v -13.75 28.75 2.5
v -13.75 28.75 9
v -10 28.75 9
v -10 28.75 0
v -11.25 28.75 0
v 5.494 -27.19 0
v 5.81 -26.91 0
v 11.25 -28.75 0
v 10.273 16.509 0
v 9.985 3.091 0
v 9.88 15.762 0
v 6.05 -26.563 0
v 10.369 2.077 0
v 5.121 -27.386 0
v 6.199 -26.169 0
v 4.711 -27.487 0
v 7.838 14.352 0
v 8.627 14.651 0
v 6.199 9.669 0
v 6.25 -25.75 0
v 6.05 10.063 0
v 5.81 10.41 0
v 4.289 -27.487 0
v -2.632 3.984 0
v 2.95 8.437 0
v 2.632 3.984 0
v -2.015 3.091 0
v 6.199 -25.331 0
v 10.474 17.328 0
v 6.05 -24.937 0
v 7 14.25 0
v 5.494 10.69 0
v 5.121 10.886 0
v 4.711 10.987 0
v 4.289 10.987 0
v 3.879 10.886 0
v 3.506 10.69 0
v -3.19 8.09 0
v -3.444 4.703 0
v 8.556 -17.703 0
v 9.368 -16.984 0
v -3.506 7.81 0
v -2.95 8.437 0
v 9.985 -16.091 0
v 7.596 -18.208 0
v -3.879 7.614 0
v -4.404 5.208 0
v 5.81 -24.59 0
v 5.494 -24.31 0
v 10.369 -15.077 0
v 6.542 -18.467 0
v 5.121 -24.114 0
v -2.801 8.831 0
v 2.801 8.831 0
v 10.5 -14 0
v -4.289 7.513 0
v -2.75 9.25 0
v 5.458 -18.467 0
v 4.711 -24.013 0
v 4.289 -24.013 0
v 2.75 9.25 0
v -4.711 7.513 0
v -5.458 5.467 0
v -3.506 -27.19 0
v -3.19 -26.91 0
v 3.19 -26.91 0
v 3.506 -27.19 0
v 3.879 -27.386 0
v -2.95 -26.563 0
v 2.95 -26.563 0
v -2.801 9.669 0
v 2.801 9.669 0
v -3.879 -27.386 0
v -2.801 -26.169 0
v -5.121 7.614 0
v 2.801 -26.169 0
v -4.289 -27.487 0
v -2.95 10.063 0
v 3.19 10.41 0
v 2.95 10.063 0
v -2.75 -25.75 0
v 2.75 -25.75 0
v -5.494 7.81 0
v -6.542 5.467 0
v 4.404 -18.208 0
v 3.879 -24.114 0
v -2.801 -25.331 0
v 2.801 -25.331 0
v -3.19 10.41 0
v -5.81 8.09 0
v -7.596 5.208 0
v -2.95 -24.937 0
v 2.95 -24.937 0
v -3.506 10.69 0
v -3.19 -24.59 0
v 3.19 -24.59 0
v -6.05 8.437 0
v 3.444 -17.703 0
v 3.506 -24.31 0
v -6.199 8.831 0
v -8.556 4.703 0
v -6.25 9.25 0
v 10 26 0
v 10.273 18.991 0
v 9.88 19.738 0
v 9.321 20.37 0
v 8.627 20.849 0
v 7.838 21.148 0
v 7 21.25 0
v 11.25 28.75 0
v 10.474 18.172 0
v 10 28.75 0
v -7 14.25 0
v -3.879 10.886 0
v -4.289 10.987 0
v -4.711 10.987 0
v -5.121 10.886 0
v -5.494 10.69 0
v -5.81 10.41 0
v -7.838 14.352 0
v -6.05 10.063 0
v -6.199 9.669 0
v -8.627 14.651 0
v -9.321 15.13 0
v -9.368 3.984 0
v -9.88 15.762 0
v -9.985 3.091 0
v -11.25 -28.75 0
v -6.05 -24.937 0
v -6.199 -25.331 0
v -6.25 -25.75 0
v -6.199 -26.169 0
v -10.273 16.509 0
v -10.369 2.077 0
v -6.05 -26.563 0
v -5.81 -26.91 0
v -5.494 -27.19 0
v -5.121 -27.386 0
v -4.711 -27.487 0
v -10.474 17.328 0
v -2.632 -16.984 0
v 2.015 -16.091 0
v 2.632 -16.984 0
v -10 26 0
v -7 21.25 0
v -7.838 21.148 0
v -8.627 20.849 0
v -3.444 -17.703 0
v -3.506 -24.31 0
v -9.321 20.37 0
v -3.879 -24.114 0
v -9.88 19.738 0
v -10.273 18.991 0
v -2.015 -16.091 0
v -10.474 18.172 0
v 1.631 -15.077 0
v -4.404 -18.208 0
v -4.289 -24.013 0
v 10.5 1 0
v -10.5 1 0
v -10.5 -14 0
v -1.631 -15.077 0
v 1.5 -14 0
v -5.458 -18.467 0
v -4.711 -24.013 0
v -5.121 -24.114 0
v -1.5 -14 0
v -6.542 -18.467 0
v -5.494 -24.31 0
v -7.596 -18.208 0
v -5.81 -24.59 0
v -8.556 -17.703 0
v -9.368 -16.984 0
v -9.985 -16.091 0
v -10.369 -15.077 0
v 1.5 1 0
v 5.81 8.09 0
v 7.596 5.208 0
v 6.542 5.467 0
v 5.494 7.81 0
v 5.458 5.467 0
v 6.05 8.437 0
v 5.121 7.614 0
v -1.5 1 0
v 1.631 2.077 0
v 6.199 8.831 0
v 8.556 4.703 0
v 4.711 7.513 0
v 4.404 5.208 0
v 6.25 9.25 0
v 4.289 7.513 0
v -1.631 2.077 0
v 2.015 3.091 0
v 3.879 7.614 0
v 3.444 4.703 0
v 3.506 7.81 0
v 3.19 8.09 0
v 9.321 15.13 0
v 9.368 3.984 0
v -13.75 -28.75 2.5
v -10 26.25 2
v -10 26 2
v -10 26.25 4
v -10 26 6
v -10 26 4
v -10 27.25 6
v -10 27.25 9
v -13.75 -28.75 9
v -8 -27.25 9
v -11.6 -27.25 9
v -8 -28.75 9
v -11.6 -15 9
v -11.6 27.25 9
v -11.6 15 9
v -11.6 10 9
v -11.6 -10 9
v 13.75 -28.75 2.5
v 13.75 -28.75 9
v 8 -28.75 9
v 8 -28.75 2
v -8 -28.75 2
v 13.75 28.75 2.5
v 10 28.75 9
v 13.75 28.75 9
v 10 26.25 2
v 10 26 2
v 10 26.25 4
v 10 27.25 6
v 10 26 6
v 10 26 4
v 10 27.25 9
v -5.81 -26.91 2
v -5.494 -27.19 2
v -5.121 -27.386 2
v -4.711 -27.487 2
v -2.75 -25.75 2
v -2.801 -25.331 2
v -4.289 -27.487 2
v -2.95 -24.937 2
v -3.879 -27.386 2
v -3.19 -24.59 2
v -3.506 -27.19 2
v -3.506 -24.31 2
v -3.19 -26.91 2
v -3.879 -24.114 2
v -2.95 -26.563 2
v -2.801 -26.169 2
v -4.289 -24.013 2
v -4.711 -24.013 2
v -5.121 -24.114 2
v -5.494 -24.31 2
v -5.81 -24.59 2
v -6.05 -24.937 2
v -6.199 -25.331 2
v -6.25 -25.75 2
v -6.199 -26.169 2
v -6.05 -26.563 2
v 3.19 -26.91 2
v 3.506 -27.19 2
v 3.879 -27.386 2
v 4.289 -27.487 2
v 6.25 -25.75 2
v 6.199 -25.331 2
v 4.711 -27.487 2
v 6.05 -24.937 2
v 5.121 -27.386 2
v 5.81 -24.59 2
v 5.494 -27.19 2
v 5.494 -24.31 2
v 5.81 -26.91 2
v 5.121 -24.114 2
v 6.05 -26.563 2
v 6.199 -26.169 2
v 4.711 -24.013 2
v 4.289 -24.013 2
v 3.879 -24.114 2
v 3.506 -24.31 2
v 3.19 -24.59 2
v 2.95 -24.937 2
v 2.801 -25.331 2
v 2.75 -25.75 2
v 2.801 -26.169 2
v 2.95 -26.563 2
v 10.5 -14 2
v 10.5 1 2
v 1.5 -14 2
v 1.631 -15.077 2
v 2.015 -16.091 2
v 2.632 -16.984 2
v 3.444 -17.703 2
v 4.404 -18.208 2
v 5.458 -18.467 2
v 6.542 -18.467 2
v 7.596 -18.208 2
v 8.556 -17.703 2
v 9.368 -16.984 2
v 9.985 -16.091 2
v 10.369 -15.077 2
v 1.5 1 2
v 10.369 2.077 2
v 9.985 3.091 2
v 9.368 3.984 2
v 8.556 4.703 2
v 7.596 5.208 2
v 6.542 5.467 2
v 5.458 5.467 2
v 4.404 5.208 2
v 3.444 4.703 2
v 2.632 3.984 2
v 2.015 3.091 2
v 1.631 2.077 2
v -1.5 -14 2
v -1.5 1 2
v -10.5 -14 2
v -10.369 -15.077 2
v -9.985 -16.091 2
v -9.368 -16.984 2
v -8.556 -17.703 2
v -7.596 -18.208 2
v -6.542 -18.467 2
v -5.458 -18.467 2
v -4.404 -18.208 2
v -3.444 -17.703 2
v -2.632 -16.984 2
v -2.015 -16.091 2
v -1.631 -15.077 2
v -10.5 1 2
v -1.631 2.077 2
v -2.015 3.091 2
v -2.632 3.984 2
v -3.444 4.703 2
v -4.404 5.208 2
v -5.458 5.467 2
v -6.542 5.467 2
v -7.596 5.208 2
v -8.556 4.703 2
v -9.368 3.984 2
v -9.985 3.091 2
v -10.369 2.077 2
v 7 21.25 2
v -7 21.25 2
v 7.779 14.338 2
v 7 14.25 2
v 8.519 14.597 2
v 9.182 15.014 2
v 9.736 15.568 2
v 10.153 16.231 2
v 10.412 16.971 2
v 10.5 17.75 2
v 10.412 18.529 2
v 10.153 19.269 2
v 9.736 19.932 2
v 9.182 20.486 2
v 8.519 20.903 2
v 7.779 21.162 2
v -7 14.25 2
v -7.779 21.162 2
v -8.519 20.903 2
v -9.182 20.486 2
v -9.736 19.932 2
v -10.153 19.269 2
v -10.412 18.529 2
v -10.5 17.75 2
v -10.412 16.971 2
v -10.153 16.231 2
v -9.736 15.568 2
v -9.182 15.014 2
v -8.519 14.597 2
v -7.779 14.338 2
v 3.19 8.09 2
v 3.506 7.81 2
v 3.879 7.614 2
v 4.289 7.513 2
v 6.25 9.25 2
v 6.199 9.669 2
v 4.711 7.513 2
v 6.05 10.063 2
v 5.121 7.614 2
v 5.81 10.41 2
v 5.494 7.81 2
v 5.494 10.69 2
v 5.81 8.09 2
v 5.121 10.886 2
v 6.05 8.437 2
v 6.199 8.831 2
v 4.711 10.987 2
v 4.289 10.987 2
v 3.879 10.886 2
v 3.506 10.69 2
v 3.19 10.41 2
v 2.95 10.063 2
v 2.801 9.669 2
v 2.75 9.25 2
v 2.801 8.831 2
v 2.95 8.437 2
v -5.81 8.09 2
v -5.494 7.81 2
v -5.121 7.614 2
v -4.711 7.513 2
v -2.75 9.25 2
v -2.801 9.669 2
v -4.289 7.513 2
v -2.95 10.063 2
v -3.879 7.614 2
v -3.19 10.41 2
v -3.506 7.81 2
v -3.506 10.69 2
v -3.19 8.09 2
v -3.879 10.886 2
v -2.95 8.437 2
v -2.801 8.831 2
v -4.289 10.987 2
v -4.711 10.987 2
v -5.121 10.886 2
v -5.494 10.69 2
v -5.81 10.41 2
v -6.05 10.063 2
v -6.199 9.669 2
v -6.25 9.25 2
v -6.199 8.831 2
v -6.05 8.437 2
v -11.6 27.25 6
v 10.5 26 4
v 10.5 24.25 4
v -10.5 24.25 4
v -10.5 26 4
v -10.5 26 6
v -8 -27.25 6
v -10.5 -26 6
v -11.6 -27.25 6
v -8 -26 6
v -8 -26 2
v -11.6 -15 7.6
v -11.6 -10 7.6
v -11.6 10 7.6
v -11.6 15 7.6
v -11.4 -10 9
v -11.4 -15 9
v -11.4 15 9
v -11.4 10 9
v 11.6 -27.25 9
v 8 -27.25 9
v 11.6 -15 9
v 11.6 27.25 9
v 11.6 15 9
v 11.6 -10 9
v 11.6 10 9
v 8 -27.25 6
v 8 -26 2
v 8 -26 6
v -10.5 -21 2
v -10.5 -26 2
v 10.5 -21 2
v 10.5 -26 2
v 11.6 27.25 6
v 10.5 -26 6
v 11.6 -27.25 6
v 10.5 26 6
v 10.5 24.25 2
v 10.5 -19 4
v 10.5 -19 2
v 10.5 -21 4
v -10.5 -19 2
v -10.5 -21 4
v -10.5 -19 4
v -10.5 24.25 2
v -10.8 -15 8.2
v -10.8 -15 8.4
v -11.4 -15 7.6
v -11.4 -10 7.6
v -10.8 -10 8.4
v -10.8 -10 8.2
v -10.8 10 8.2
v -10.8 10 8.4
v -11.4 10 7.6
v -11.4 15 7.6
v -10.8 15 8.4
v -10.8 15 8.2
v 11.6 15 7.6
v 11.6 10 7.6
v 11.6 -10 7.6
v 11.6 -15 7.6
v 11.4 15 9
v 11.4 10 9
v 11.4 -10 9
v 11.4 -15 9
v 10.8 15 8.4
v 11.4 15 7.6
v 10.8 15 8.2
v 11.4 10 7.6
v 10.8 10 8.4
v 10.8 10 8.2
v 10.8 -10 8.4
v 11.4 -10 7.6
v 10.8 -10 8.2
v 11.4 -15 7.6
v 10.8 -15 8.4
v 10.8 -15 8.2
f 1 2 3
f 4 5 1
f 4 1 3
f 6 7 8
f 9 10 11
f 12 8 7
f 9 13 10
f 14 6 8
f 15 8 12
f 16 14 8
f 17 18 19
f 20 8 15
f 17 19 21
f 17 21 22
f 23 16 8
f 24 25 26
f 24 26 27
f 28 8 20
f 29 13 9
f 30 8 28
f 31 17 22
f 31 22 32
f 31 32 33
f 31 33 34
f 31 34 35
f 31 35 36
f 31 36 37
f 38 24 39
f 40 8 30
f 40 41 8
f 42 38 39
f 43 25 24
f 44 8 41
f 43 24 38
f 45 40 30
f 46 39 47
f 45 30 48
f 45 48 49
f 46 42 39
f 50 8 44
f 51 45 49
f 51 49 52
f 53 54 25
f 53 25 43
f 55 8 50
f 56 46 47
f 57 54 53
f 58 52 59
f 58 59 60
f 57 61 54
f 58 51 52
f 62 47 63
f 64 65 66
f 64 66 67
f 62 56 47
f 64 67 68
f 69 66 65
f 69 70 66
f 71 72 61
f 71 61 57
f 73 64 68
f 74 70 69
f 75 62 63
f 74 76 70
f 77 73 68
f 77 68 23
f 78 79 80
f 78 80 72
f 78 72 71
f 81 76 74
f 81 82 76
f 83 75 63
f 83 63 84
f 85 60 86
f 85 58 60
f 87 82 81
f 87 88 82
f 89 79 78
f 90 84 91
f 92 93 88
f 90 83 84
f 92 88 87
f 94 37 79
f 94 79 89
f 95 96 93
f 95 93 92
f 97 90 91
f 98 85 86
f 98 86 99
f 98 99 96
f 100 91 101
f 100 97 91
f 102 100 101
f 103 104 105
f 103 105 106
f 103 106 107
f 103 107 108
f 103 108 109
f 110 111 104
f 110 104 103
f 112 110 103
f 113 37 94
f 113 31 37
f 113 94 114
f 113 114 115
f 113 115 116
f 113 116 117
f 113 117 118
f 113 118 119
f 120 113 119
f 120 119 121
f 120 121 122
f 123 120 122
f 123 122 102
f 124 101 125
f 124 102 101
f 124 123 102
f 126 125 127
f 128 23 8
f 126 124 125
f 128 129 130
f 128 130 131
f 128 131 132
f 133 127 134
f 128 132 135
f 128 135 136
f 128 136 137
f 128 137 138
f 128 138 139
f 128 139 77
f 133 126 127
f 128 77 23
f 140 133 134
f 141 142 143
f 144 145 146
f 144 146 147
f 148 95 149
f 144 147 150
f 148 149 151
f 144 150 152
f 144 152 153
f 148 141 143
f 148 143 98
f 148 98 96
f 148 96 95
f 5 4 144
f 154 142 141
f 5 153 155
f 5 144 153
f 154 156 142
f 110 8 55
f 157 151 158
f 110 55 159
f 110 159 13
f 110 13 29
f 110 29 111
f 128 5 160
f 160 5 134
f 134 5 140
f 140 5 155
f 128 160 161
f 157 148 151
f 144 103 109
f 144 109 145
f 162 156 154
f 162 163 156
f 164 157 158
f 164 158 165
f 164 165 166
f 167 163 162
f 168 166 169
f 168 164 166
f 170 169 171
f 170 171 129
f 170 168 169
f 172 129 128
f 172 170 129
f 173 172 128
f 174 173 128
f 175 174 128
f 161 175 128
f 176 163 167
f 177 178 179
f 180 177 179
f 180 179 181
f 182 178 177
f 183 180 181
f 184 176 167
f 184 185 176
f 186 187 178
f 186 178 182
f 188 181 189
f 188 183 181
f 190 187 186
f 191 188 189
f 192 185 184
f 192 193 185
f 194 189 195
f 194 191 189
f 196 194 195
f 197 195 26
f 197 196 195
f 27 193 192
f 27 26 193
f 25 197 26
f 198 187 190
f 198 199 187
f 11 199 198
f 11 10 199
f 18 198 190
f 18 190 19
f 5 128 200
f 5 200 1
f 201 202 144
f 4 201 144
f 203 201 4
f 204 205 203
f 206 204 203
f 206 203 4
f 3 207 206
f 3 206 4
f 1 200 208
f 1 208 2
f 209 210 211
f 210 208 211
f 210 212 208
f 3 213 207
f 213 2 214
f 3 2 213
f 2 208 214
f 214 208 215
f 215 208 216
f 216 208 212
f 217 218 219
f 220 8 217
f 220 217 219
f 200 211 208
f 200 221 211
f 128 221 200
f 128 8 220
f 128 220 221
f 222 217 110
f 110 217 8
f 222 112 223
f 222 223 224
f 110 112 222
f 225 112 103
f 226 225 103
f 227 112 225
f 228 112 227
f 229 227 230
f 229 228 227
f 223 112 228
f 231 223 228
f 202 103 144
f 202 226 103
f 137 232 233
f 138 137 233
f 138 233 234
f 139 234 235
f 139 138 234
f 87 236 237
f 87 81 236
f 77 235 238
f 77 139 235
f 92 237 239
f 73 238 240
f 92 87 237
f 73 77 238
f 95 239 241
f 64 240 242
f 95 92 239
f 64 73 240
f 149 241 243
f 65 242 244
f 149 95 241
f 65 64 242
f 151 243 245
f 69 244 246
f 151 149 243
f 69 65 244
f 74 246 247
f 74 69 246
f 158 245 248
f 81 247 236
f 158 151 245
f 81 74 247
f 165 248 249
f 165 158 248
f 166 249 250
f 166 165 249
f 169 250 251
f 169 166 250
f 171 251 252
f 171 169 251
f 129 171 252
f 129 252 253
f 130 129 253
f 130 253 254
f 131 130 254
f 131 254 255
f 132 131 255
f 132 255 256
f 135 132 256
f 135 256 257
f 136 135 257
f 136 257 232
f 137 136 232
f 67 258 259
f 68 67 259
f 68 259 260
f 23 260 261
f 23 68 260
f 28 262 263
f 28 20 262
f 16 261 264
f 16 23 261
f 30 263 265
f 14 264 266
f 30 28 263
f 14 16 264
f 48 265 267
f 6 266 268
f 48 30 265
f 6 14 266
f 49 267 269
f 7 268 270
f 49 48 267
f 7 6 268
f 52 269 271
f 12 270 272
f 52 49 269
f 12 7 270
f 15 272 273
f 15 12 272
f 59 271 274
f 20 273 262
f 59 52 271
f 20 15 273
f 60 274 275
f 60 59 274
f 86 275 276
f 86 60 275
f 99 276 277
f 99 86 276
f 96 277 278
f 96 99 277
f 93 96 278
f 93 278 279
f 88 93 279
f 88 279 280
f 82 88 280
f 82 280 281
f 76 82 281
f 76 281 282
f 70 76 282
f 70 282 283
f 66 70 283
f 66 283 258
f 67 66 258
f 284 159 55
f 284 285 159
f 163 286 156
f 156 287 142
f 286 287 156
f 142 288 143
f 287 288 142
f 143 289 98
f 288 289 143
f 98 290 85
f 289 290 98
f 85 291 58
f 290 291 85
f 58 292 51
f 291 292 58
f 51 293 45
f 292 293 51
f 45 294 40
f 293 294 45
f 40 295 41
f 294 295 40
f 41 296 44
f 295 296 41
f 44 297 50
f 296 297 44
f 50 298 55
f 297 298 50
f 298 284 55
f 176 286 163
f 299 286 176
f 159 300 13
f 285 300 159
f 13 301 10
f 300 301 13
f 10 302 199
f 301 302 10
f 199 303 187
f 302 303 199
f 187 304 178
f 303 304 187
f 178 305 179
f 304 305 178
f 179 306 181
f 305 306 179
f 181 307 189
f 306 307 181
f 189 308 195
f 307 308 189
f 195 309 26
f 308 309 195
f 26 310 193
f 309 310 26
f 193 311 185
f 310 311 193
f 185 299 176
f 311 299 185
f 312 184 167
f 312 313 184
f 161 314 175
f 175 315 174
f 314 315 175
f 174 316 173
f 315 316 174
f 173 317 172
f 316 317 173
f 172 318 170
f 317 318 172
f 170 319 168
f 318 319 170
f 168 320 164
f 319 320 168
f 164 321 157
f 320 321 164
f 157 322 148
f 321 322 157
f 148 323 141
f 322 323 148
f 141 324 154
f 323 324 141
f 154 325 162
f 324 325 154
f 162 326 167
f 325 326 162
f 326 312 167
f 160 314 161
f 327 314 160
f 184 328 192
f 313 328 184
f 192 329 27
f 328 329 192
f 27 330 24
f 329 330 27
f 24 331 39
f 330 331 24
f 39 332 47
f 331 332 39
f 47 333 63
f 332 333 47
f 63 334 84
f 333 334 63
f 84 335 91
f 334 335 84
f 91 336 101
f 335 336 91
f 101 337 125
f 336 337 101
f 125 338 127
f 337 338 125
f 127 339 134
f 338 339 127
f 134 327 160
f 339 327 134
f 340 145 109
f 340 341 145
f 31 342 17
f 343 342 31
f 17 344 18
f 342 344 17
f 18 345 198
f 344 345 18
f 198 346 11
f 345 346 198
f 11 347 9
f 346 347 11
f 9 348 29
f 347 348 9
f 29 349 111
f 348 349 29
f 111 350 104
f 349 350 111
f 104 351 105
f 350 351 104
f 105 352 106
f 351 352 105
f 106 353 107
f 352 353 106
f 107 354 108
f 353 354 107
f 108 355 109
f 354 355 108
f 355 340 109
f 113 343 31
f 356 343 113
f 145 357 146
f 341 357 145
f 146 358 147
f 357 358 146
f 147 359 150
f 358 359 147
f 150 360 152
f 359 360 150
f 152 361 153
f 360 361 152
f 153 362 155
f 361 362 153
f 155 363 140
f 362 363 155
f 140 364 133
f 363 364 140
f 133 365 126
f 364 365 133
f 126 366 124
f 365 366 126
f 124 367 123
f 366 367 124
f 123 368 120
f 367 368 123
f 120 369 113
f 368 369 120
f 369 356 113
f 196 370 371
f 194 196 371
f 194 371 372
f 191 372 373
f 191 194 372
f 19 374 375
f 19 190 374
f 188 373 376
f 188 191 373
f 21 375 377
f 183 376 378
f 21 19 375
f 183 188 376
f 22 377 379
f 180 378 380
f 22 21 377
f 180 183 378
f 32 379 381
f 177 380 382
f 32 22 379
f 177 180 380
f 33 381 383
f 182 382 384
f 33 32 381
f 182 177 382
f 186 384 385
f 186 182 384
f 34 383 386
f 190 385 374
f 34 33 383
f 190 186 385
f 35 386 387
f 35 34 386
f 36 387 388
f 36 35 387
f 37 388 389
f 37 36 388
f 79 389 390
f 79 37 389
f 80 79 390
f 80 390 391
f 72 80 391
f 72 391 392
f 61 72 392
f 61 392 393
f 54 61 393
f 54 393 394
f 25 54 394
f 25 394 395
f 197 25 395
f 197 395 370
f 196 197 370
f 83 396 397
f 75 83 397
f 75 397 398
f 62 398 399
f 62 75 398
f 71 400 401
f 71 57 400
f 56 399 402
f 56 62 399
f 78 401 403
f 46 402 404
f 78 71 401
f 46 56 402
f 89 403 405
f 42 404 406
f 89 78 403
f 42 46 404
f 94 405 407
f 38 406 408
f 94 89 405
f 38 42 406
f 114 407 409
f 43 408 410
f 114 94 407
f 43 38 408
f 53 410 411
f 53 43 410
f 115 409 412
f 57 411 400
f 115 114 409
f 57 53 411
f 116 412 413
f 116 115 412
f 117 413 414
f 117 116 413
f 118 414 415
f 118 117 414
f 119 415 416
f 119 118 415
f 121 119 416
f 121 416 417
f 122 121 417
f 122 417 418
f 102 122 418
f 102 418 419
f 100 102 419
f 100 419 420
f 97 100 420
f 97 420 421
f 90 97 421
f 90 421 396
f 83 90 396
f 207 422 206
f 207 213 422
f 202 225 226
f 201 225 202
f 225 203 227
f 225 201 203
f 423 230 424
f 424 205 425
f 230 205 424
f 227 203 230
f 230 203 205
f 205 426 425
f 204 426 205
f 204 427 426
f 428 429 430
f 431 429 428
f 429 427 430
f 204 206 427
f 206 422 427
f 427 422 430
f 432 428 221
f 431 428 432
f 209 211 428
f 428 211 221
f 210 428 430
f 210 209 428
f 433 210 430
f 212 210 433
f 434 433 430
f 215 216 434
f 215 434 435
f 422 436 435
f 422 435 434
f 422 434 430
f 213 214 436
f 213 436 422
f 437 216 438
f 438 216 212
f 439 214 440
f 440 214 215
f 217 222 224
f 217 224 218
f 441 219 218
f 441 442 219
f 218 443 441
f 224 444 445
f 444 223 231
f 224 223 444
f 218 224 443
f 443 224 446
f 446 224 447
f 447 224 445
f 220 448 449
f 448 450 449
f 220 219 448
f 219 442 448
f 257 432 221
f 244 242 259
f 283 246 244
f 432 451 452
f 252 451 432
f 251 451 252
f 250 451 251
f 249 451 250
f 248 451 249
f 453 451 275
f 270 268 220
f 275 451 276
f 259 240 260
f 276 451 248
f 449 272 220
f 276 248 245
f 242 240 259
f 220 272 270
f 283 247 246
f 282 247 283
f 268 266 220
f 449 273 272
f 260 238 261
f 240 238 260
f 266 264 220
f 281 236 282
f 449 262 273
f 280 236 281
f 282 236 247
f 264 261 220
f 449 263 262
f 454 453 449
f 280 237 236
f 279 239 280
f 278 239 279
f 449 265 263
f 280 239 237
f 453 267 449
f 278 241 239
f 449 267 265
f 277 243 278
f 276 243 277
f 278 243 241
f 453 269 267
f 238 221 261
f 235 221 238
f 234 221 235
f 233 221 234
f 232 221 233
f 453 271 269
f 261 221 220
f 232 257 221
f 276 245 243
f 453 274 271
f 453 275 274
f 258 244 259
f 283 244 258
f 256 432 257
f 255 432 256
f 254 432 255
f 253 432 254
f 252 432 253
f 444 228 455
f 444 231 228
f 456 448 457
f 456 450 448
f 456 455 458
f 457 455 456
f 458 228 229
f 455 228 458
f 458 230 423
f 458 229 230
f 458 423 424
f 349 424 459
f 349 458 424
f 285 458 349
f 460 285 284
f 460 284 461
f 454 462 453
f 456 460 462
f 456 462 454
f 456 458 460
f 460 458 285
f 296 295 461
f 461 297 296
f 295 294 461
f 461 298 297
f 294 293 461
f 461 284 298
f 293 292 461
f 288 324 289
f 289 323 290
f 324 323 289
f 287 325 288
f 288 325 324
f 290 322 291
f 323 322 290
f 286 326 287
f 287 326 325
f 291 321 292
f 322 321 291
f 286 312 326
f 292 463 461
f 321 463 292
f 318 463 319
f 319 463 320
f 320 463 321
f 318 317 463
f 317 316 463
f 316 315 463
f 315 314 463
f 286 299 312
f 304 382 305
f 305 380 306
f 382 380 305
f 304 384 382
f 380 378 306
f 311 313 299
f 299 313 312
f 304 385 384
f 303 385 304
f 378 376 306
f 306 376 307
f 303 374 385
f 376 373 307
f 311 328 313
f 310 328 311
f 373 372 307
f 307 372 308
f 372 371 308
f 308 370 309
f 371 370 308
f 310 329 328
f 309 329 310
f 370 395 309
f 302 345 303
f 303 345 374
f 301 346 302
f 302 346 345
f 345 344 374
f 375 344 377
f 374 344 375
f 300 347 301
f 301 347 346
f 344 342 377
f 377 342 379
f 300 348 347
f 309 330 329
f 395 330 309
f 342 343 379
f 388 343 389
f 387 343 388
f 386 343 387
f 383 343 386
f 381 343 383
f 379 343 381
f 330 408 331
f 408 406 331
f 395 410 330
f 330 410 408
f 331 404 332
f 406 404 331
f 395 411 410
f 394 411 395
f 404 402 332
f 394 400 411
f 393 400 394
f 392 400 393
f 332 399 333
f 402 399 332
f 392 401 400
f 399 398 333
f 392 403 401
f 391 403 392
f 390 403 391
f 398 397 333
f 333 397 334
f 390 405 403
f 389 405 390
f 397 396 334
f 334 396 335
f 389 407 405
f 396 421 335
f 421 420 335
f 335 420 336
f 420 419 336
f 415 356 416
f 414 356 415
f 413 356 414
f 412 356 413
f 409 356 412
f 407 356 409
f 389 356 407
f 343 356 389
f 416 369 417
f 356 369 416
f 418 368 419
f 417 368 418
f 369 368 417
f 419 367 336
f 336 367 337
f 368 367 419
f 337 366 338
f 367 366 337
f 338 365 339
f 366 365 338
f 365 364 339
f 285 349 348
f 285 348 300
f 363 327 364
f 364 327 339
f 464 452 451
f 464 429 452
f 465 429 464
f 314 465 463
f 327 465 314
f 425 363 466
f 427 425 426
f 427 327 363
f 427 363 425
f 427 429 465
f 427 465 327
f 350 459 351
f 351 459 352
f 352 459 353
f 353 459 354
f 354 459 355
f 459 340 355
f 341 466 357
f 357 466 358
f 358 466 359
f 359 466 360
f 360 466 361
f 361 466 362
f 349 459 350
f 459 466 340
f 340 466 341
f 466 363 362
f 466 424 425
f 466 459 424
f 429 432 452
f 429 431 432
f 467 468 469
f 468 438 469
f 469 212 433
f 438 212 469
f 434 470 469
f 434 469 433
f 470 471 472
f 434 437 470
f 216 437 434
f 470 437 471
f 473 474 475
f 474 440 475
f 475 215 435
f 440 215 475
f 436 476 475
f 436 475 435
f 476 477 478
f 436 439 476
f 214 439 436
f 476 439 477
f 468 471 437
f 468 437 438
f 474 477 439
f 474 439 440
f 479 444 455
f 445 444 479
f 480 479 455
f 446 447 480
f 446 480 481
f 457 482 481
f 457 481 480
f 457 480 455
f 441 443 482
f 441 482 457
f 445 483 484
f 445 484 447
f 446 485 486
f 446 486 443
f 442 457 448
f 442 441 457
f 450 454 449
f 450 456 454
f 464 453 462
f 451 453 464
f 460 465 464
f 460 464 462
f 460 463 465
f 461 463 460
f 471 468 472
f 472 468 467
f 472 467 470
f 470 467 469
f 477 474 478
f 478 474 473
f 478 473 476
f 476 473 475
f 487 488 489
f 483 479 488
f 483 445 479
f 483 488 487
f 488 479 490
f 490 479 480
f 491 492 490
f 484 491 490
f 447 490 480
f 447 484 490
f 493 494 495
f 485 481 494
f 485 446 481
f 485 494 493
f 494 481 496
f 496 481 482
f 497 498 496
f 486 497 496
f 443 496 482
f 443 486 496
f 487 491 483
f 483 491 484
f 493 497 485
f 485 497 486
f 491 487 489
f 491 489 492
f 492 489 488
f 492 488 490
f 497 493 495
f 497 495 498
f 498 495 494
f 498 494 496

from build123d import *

# Parameters (mm, degrees)
SKETCH_W        = 27.5
SKETCH_H        = 57.5
SKETCH_R        = 1.75
PAD_DEPTH       = 9
POCKET_DEPTH    = 7
SKETCH002_W     = 23.2
SKETCH002_H     = 54.5
POCKET001_DEPTH = 3
SKETCH003_W     = 0.8
SKETCH003_H     = 5
PAD001_DEPTH    = 1.4
CHAMFER_SIZE    = 0.6
SKETCH004_W     = 20
SKETCH004_H     = 3
POCKET002_DEPTH = 9.001
SKETCH005_W     = 21.5
SKETCH005_H     = 2
PAD002_DEPTH    = 2
POCKET003_DEPTH = 3
CHAMFER001_SIZE = 2.5


with BuildPart() as part:
    # Sketch → Pad (new body)
    with BuildSketch(Plane.XY):
        Rectangle(SKETCH_W, SKETCH_H)
        with Locations((-4.5, 9.25)):
            Circle(SKETCH_R, mode=Mode.SUBTRACT)
        with Locations((-4.5, -25.75)):
            Circle(SKETCH_R, mode=Mode.SUBTRACT)
        with Locations((4.5, 9.25)):
            Circle(SKETCH_R, mode=Mode.SUBTRACT)
        with Locations((4.5, -25.75)):
            Circle(SKETCH_R, mode=Mode.SUBTRACT)
    extrude(amount=PAD_DEPTH)

    # Sketch001 (on Face10 of Pad) → Pocket (cut)
    with BuildSketch(Plane.XY.offset(9)):
        Polygon((-10.5, 26), (10.5, 26), (10.5, -26), (8, -26), (8, -29), (-8, -29), (-8, -26), (-10.5, -26), align=None)
    extrude(amount=-POCKET_DEPTH, mode=Mode.SUBTRACT)

    # Sketch002 (on Face5 of Pocket) → Pocket001 (cut)
    with BuildSketch(Plane.XY.offset(9)):
        Rectangle(SKETCH002_W, SKETCH002_H)
    extrude(amount=-POCKET001_DEPTH, mode=Mode.SUBTRACT)

    # Sketch003 (on Face5 of Pocket001) → Pad001 (join)
    with BuildSketch(Plane.XY.offset(9)):
        with Locations((-11.2, 12.5)):
            Rectangle(SKETCH003_W, SKETCH003_H)
        with Locations((-11.2, -12.5)):
            Rectangle(SKETCH003_W, SKETCH003_H)
        with Locations((11.2, -12.5)):
            Rectangle(SKETCH003_W, SKETCH003_H)
        with Locations((11.2, 12.5)):
            Rectangle(SKETCH003_W, SKETCH003_H)
    extrude(amount=-PAD001_DEPTH)

    # Chamfer
    chamfer_edges = [part.edges().sort_by_distance(p)[0] for p in [
        (-10.8, -12.5, 9),
        (-10.8, -12.5, 7.6),
        (-10.8, 12.5, 9),
        (-10.8, 12.5, 7.6),
        (10.8, 12.5, 9),
        (10.8, 12.5, 7.6),
        (10.8, -12.5, 9),
        (10.8, -12.5, 7.6),
    ]]
    chamfer(chamfer_edges, length=CHAMFER_SIZE)

    # Sketch004 (on Face4 of Chamfer) → Pocket002 (cut, through all)
    with BuildSketch(Plane.XY.offset(9)):
        with Locations((0, 27.5)):
            Rectangle(SKETCH004_W, SKETCH004_H)
    extrude(amount=-POCKET002_DEPTH, mode=Mode.SUBTRACT)

    # Sketch005 (on Face22 of Pocket002) → Pad002 (join)
    with BuildSketch(Plane.XY.offset(2)):
        with Locations((0, 25.25)):
            Rectangle(SKETCH005_W, SKETCH005_H)
        with Locations((0, -20)):
            Rectangle(SKETCH005_W, SKETCH005_H)
    extrude(amount=PAD002_DEPTH)

    # Sketch006 (on Face54 of Pad002) → Pocket003 (cut)
    with BuildSketch(Plane.XY.offset(2)):
        with BuildLine():
            ThreePointArc((-7, 21.25), (-10.5, 17.75), (-7, 14.25))
            Line((-7, 14.25), (7, 14.25))
            ThreePointArc((7, 14.25), (10.5, 17.75), (7, 21.25))
            Line((-7, 21.25), (7, 21.25))
        make_face()
        with BuildLine():
            ThreePointArc((-1.5, 1), (-6, 5.5), (-10.5, 1))
            Line((-10.5, 1), (-10.5, -14))
            ThreePointArc((-10.5, -14), (-6, -18.5), (-1.5, -14))
            Line((-1.5, 1), (-1.5, -14))
        make_face()
        with BuildLine():
            ThreePointArc((10.5, 1), (6, 5.5), (1.5, 1))
            Line((1.5, 1), (1.5, -14))
            ThreePointArc((1.5, -14), (6, -18.5), (10.5, -14))
            Line((10.5, 1), (10.5, -14))
        make_face()
    extrude(amount=-POCKET003_DEPTH, mode=Mode.SUBTRACT)

    # Chamfer001
    chamfer001_edges = [part.edges().sort_by_distance(p)[0] for p in [
        (-13.75, 0, 0),
        (13.75, 0, 0),
    ]]
    chamfer(chamfer001_edges, length=CHAMFER001_SIZE)


solid = part.part
